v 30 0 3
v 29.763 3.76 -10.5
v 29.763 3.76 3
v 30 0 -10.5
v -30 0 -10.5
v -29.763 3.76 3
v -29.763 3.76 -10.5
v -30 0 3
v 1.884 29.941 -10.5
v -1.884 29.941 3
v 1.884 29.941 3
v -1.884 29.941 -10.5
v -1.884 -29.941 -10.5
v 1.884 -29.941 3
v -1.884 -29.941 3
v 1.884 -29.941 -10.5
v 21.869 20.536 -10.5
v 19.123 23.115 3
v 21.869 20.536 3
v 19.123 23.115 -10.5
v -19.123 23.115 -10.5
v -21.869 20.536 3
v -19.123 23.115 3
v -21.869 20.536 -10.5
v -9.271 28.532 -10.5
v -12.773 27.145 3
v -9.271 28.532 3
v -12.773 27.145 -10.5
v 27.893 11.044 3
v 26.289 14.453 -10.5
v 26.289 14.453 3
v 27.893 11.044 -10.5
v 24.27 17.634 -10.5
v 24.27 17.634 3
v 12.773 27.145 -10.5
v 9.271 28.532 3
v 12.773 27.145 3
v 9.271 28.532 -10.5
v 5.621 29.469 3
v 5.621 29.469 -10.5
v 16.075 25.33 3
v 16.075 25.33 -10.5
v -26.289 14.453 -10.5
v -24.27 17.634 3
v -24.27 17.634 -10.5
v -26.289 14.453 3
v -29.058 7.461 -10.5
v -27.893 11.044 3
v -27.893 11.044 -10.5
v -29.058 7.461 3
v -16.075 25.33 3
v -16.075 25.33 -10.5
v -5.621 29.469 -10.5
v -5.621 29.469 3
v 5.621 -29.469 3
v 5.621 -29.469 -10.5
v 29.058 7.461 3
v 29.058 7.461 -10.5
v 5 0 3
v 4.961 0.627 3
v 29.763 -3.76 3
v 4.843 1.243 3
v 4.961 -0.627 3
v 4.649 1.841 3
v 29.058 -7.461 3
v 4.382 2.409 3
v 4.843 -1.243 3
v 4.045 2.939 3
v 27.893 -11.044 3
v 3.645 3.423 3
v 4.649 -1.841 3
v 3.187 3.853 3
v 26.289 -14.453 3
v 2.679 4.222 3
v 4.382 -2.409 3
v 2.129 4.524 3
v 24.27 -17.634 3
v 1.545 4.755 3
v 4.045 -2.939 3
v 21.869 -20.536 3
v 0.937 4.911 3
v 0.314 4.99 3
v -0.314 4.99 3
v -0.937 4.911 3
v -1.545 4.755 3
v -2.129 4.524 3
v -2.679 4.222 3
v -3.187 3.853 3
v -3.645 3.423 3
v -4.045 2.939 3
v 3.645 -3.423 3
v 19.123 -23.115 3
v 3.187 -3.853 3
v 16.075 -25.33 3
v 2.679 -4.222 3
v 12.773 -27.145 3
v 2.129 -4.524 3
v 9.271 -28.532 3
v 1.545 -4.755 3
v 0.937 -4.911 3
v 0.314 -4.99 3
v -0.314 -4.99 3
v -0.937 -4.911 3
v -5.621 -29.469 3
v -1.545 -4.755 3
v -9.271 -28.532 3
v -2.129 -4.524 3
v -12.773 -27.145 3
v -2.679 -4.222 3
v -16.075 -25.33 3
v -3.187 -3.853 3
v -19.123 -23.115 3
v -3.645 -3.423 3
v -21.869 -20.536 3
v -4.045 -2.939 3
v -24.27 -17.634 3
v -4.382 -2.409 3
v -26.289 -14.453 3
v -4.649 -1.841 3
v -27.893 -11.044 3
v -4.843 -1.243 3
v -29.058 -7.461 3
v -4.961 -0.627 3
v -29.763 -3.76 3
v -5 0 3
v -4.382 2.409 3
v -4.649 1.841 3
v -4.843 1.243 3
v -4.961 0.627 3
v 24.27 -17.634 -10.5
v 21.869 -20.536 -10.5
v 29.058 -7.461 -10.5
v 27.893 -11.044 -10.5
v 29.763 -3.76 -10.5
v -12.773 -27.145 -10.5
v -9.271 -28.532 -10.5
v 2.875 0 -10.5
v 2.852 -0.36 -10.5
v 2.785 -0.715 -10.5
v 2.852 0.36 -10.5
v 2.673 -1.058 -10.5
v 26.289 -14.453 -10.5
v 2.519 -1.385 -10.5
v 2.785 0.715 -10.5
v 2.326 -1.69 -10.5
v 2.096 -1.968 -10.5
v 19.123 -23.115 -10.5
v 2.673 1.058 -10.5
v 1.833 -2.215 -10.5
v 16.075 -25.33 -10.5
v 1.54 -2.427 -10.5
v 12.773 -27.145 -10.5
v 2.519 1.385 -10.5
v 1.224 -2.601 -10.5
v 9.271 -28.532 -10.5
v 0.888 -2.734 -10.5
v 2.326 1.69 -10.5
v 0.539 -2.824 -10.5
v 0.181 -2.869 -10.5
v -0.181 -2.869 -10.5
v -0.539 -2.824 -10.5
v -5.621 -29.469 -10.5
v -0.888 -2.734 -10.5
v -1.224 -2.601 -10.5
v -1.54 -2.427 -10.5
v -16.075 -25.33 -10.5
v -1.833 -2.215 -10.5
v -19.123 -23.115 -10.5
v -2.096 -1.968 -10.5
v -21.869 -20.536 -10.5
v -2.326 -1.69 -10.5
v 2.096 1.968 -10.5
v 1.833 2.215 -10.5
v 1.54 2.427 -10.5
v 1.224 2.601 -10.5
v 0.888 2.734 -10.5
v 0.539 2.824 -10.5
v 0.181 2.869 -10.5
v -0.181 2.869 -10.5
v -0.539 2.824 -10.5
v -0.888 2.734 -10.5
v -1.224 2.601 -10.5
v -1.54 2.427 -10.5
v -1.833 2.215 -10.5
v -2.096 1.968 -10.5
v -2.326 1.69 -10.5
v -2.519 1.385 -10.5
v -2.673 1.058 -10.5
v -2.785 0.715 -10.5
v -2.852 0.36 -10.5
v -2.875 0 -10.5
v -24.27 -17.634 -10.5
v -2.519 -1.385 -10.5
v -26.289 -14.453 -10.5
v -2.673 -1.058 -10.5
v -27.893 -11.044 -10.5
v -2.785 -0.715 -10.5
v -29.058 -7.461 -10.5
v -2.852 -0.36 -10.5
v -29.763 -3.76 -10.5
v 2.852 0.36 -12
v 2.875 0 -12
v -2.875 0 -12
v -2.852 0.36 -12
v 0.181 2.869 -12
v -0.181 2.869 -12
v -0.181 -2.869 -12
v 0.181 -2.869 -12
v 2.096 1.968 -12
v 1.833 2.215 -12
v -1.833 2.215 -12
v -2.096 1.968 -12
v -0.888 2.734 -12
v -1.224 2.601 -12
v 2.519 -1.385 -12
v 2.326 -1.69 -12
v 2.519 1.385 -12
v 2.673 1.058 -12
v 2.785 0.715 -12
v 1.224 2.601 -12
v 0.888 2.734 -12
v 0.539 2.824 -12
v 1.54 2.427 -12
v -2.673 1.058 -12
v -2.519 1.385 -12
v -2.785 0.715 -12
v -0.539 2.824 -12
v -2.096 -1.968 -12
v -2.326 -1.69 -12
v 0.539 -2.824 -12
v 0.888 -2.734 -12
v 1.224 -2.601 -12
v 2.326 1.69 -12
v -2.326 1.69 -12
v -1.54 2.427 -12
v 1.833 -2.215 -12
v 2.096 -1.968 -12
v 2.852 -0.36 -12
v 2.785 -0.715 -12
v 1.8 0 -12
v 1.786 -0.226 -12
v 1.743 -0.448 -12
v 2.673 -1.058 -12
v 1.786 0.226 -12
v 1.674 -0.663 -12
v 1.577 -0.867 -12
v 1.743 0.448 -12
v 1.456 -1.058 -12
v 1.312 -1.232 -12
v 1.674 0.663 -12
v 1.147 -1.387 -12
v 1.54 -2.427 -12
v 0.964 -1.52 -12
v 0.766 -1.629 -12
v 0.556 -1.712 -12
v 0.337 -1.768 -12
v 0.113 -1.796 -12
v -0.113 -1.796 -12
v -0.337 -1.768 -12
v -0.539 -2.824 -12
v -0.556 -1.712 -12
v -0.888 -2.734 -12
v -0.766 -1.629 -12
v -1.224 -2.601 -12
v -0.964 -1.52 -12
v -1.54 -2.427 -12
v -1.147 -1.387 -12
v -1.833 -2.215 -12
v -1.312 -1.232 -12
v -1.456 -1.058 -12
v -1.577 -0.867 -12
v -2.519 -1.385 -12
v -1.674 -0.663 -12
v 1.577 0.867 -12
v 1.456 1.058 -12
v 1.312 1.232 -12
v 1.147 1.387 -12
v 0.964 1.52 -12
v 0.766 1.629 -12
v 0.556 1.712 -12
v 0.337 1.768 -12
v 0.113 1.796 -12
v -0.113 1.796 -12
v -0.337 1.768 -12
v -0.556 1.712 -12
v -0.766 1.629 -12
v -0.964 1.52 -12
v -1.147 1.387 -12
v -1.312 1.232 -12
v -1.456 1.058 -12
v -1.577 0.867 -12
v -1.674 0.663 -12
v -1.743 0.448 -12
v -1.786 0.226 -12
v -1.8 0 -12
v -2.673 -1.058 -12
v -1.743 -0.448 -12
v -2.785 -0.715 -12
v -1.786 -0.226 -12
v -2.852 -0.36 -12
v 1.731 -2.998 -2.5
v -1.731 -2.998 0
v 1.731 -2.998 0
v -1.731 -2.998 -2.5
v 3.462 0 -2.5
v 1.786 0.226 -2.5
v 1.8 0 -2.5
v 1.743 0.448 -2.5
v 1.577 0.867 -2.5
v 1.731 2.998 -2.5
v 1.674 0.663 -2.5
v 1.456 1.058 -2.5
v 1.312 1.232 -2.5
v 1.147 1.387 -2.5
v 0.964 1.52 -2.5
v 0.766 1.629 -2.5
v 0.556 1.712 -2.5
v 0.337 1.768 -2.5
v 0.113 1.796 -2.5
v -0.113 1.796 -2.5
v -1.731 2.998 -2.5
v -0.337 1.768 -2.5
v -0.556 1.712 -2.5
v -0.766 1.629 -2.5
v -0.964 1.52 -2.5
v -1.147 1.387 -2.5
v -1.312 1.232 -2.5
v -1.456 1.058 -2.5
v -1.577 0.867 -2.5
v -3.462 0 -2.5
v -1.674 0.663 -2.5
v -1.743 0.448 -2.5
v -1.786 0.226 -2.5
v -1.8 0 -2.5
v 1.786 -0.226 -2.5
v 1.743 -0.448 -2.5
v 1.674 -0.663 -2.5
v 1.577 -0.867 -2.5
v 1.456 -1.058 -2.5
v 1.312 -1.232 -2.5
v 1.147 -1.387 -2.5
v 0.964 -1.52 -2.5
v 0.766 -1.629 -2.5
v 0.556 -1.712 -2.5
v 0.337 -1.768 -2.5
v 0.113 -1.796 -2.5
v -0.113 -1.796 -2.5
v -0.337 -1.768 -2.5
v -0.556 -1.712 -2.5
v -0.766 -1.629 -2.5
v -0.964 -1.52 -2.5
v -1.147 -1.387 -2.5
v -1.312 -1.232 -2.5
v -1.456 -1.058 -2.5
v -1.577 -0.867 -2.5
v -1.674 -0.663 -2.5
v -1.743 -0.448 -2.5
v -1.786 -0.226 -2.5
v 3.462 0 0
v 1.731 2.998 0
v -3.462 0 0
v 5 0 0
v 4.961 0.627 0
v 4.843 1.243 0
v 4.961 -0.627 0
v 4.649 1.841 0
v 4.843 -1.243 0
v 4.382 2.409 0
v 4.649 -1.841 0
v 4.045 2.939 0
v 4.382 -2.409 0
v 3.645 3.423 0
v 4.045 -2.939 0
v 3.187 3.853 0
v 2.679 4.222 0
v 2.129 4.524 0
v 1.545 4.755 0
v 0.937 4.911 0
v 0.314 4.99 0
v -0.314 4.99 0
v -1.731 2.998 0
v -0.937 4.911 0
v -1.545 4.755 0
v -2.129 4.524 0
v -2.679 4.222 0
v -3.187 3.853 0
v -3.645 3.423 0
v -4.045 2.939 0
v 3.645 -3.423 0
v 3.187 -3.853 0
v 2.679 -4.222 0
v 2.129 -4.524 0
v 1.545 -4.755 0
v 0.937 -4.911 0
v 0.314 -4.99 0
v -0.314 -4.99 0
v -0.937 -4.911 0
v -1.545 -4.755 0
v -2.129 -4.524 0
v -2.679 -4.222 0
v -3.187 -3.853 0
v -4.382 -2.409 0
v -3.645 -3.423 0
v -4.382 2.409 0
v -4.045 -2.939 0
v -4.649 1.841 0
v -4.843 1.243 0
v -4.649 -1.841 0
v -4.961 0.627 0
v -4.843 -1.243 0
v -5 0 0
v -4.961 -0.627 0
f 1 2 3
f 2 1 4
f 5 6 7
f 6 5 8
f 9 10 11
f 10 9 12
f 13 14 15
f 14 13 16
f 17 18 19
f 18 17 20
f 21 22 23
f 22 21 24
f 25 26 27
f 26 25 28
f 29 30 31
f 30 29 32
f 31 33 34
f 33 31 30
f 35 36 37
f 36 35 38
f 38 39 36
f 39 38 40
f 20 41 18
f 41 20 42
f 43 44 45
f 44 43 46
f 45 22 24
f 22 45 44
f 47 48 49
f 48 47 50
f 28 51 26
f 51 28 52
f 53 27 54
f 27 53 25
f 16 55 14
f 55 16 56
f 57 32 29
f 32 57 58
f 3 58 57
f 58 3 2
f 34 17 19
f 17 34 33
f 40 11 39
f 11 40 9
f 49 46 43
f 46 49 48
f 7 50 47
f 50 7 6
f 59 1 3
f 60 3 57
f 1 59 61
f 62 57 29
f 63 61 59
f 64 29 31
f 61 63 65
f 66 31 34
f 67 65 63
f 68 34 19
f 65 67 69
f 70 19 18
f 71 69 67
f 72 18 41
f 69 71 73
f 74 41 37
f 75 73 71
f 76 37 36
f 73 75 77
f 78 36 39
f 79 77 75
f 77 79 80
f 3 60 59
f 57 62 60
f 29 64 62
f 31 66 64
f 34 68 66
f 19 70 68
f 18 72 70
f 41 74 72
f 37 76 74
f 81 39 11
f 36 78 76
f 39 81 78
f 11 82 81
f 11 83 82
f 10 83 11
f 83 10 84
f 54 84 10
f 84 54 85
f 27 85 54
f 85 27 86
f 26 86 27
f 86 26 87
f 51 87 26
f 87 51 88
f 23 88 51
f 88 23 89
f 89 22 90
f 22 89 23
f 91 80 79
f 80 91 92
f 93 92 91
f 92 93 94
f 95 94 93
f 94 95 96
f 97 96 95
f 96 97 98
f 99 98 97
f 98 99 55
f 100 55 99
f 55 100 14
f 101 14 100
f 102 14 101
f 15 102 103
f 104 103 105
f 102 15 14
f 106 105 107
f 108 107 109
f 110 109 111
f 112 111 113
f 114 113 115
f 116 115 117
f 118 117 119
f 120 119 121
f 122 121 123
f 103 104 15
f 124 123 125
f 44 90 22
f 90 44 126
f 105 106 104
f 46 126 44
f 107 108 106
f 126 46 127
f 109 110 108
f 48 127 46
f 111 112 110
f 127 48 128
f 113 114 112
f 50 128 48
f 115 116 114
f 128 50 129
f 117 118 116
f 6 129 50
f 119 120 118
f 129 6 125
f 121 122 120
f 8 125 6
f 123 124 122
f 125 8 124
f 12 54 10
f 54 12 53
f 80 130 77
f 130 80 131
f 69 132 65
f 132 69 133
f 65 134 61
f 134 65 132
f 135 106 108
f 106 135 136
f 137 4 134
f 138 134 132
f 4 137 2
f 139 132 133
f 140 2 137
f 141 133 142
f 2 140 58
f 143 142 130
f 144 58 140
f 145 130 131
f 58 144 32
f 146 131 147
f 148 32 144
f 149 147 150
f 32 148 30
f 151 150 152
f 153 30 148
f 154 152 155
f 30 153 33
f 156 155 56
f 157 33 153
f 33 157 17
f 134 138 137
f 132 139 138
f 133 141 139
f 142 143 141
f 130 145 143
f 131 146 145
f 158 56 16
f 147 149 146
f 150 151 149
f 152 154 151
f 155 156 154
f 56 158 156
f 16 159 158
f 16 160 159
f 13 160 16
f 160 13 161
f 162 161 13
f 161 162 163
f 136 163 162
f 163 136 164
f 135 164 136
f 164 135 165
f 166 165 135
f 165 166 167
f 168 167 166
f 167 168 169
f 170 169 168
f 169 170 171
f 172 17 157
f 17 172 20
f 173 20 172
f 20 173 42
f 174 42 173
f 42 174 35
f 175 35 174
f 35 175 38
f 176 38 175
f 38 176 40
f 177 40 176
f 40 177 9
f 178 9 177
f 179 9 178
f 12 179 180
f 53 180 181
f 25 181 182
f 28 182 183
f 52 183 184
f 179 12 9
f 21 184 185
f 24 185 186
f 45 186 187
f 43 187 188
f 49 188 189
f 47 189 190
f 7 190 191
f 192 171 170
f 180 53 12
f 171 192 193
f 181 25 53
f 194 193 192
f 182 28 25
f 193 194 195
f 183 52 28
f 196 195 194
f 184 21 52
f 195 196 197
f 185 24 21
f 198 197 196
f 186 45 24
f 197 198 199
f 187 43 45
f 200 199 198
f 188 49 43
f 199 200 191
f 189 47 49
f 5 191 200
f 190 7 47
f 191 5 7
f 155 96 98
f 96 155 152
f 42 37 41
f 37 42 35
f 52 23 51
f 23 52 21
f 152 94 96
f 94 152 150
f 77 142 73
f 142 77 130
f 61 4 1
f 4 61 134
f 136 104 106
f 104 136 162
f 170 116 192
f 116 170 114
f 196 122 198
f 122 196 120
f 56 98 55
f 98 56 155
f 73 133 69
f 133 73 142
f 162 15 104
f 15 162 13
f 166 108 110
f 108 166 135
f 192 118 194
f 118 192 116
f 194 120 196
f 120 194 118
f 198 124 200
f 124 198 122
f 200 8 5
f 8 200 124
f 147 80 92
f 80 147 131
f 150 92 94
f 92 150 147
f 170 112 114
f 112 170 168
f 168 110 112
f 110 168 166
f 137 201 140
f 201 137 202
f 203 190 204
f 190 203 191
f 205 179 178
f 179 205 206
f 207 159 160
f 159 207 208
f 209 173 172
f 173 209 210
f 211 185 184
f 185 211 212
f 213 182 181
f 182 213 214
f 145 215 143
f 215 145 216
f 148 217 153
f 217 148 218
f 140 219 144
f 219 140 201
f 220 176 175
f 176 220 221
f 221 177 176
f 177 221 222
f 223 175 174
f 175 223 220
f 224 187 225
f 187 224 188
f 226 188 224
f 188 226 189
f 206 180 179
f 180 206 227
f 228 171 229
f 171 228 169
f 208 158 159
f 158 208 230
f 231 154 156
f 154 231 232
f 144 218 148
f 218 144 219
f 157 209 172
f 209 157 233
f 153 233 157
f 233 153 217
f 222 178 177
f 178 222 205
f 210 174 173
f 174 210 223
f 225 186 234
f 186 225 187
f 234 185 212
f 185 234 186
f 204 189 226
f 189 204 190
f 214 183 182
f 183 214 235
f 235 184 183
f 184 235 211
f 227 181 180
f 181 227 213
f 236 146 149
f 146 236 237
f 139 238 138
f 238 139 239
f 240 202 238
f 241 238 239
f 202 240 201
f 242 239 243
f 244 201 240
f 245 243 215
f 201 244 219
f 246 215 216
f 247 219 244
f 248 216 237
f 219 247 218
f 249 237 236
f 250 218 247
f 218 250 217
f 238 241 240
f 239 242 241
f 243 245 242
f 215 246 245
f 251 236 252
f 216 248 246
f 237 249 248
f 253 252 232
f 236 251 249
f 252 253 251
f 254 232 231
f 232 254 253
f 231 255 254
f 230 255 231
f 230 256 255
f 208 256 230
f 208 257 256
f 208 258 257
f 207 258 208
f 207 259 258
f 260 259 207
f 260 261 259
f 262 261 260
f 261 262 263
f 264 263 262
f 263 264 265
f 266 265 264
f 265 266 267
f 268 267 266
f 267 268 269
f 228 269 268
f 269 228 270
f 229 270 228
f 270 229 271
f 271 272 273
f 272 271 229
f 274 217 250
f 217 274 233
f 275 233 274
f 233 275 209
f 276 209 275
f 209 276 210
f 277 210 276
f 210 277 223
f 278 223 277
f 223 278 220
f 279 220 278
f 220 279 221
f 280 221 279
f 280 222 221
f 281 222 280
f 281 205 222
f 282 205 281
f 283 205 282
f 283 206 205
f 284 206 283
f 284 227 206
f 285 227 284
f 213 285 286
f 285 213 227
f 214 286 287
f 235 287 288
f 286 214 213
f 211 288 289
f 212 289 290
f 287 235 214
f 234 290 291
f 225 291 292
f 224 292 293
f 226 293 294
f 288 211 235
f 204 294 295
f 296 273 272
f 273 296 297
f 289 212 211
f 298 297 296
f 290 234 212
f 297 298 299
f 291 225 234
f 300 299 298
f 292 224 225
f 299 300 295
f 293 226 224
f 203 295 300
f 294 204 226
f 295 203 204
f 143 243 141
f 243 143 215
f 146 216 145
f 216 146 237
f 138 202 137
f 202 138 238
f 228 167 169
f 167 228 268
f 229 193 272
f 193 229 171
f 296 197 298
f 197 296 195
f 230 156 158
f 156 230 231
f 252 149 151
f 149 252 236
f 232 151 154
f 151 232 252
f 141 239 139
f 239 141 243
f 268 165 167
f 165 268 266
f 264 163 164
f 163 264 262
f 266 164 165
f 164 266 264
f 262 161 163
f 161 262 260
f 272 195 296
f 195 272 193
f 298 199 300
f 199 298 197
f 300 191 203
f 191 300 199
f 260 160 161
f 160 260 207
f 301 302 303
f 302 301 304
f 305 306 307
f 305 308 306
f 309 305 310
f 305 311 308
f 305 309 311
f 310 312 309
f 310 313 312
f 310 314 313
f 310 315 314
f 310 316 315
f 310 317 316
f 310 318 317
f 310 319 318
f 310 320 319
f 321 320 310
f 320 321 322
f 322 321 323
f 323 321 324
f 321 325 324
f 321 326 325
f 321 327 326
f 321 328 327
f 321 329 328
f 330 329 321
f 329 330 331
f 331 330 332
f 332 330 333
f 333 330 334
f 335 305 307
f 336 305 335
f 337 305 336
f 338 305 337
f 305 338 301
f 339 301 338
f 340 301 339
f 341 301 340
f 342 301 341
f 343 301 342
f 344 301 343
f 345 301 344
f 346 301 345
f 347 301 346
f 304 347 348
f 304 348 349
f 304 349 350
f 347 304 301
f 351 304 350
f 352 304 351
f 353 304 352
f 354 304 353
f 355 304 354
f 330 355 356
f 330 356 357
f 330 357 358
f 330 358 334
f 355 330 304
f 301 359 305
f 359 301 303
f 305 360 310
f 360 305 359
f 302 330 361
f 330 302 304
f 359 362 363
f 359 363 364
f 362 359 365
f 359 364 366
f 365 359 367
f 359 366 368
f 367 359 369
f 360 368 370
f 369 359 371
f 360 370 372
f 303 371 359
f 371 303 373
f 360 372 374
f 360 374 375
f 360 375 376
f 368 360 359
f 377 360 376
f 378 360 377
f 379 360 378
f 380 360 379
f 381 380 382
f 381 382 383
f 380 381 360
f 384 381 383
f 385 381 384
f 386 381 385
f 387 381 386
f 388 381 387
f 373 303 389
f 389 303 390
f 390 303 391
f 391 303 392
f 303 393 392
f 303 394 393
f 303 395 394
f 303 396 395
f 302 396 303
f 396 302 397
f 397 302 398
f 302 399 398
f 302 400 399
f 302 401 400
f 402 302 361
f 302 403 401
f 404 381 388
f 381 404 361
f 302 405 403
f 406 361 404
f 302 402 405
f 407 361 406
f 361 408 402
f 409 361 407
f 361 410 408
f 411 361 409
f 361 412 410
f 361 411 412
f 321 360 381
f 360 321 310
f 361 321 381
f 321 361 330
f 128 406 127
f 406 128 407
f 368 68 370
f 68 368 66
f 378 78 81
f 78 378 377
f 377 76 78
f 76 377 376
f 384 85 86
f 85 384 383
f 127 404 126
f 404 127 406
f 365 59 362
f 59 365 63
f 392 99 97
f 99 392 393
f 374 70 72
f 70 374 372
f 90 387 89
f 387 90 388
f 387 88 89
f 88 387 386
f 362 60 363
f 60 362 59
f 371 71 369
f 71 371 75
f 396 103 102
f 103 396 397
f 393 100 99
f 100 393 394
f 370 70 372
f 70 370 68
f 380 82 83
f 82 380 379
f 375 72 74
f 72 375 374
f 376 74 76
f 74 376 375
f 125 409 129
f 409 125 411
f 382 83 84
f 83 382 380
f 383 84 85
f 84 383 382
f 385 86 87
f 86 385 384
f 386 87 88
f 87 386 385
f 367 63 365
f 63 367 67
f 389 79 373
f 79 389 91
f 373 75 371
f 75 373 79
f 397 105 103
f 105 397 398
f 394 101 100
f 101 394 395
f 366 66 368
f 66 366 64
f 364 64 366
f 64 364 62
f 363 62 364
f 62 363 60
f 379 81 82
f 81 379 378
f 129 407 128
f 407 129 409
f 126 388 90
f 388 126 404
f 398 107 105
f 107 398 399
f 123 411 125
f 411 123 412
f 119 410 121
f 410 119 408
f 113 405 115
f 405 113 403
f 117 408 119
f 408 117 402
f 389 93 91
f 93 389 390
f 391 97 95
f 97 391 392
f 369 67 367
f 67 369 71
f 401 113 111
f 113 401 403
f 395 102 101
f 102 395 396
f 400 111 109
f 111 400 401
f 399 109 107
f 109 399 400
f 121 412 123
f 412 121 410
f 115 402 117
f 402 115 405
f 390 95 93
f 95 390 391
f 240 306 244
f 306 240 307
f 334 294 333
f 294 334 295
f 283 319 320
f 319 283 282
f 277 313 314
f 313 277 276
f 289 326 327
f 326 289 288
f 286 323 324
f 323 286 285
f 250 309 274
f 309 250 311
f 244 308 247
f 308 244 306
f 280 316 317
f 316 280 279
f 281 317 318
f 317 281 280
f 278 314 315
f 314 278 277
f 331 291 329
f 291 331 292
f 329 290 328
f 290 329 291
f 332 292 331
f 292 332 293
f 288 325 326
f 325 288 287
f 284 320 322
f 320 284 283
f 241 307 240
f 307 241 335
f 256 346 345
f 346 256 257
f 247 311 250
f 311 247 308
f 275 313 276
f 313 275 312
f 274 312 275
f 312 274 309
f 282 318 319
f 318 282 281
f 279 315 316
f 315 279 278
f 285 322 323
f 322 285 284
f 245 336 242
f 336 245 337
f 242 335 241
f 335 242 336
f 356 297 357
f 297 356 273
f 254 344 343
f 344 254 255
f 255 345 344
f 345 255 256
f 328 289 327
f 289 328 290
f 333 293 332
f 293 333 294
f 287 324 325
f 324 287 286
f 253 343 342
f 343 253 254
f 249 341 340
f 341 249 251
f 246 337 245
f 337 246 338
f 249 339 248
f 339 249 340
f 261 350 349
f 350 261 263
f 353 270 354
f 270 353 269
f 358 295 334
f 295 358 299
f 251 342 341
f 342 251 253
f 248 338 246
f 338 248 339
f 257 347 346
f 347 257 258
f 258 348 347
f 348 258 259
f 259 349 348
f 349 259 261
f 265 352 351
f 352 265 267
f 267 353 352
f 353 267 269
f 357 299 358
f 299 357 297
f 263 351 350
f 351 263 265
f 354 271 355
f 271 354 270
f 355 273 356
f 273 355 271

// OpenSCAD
$fn = 50;


difference() {
	union() {
		translate(v = [0, 0, -10.5000000000]) {
			cylinder(h = 13.5000000000, r = 30.0000000000);
		}
		#translate(v = [0, 0, -12.0000000000]) {
			cylinder(h = 12, r = 2.8750000000);
		}
	}
	union() {
		translate(v = [0, 0, 0]) {
			rotate(a = [0, 0, 0]) {
				difference() {
					union() {
						translate(v = [0, 0, -2.5000000000]) {
							linear_extrude(height = 2.5000000000) {
								polygon(points = [[3.4620000000, 0.0000000000], [1.7310000000, 2.9981799479], [-1.7310000000, 2.9981799479], [-3.4620000000, 0.0000000000], [-1.7310000000, -2.9981799479], [1.7310000000, -2.9981799479]]);
							}
						}
					}
					union();
				}
			}
		}
		#cylinder(h = 3, r = 5.0000000000);
		#translate(v = [0, 0, -100.0000000000]) {
			cylinder(h = 200, r = 1.8000000000);
		}
	}
}
